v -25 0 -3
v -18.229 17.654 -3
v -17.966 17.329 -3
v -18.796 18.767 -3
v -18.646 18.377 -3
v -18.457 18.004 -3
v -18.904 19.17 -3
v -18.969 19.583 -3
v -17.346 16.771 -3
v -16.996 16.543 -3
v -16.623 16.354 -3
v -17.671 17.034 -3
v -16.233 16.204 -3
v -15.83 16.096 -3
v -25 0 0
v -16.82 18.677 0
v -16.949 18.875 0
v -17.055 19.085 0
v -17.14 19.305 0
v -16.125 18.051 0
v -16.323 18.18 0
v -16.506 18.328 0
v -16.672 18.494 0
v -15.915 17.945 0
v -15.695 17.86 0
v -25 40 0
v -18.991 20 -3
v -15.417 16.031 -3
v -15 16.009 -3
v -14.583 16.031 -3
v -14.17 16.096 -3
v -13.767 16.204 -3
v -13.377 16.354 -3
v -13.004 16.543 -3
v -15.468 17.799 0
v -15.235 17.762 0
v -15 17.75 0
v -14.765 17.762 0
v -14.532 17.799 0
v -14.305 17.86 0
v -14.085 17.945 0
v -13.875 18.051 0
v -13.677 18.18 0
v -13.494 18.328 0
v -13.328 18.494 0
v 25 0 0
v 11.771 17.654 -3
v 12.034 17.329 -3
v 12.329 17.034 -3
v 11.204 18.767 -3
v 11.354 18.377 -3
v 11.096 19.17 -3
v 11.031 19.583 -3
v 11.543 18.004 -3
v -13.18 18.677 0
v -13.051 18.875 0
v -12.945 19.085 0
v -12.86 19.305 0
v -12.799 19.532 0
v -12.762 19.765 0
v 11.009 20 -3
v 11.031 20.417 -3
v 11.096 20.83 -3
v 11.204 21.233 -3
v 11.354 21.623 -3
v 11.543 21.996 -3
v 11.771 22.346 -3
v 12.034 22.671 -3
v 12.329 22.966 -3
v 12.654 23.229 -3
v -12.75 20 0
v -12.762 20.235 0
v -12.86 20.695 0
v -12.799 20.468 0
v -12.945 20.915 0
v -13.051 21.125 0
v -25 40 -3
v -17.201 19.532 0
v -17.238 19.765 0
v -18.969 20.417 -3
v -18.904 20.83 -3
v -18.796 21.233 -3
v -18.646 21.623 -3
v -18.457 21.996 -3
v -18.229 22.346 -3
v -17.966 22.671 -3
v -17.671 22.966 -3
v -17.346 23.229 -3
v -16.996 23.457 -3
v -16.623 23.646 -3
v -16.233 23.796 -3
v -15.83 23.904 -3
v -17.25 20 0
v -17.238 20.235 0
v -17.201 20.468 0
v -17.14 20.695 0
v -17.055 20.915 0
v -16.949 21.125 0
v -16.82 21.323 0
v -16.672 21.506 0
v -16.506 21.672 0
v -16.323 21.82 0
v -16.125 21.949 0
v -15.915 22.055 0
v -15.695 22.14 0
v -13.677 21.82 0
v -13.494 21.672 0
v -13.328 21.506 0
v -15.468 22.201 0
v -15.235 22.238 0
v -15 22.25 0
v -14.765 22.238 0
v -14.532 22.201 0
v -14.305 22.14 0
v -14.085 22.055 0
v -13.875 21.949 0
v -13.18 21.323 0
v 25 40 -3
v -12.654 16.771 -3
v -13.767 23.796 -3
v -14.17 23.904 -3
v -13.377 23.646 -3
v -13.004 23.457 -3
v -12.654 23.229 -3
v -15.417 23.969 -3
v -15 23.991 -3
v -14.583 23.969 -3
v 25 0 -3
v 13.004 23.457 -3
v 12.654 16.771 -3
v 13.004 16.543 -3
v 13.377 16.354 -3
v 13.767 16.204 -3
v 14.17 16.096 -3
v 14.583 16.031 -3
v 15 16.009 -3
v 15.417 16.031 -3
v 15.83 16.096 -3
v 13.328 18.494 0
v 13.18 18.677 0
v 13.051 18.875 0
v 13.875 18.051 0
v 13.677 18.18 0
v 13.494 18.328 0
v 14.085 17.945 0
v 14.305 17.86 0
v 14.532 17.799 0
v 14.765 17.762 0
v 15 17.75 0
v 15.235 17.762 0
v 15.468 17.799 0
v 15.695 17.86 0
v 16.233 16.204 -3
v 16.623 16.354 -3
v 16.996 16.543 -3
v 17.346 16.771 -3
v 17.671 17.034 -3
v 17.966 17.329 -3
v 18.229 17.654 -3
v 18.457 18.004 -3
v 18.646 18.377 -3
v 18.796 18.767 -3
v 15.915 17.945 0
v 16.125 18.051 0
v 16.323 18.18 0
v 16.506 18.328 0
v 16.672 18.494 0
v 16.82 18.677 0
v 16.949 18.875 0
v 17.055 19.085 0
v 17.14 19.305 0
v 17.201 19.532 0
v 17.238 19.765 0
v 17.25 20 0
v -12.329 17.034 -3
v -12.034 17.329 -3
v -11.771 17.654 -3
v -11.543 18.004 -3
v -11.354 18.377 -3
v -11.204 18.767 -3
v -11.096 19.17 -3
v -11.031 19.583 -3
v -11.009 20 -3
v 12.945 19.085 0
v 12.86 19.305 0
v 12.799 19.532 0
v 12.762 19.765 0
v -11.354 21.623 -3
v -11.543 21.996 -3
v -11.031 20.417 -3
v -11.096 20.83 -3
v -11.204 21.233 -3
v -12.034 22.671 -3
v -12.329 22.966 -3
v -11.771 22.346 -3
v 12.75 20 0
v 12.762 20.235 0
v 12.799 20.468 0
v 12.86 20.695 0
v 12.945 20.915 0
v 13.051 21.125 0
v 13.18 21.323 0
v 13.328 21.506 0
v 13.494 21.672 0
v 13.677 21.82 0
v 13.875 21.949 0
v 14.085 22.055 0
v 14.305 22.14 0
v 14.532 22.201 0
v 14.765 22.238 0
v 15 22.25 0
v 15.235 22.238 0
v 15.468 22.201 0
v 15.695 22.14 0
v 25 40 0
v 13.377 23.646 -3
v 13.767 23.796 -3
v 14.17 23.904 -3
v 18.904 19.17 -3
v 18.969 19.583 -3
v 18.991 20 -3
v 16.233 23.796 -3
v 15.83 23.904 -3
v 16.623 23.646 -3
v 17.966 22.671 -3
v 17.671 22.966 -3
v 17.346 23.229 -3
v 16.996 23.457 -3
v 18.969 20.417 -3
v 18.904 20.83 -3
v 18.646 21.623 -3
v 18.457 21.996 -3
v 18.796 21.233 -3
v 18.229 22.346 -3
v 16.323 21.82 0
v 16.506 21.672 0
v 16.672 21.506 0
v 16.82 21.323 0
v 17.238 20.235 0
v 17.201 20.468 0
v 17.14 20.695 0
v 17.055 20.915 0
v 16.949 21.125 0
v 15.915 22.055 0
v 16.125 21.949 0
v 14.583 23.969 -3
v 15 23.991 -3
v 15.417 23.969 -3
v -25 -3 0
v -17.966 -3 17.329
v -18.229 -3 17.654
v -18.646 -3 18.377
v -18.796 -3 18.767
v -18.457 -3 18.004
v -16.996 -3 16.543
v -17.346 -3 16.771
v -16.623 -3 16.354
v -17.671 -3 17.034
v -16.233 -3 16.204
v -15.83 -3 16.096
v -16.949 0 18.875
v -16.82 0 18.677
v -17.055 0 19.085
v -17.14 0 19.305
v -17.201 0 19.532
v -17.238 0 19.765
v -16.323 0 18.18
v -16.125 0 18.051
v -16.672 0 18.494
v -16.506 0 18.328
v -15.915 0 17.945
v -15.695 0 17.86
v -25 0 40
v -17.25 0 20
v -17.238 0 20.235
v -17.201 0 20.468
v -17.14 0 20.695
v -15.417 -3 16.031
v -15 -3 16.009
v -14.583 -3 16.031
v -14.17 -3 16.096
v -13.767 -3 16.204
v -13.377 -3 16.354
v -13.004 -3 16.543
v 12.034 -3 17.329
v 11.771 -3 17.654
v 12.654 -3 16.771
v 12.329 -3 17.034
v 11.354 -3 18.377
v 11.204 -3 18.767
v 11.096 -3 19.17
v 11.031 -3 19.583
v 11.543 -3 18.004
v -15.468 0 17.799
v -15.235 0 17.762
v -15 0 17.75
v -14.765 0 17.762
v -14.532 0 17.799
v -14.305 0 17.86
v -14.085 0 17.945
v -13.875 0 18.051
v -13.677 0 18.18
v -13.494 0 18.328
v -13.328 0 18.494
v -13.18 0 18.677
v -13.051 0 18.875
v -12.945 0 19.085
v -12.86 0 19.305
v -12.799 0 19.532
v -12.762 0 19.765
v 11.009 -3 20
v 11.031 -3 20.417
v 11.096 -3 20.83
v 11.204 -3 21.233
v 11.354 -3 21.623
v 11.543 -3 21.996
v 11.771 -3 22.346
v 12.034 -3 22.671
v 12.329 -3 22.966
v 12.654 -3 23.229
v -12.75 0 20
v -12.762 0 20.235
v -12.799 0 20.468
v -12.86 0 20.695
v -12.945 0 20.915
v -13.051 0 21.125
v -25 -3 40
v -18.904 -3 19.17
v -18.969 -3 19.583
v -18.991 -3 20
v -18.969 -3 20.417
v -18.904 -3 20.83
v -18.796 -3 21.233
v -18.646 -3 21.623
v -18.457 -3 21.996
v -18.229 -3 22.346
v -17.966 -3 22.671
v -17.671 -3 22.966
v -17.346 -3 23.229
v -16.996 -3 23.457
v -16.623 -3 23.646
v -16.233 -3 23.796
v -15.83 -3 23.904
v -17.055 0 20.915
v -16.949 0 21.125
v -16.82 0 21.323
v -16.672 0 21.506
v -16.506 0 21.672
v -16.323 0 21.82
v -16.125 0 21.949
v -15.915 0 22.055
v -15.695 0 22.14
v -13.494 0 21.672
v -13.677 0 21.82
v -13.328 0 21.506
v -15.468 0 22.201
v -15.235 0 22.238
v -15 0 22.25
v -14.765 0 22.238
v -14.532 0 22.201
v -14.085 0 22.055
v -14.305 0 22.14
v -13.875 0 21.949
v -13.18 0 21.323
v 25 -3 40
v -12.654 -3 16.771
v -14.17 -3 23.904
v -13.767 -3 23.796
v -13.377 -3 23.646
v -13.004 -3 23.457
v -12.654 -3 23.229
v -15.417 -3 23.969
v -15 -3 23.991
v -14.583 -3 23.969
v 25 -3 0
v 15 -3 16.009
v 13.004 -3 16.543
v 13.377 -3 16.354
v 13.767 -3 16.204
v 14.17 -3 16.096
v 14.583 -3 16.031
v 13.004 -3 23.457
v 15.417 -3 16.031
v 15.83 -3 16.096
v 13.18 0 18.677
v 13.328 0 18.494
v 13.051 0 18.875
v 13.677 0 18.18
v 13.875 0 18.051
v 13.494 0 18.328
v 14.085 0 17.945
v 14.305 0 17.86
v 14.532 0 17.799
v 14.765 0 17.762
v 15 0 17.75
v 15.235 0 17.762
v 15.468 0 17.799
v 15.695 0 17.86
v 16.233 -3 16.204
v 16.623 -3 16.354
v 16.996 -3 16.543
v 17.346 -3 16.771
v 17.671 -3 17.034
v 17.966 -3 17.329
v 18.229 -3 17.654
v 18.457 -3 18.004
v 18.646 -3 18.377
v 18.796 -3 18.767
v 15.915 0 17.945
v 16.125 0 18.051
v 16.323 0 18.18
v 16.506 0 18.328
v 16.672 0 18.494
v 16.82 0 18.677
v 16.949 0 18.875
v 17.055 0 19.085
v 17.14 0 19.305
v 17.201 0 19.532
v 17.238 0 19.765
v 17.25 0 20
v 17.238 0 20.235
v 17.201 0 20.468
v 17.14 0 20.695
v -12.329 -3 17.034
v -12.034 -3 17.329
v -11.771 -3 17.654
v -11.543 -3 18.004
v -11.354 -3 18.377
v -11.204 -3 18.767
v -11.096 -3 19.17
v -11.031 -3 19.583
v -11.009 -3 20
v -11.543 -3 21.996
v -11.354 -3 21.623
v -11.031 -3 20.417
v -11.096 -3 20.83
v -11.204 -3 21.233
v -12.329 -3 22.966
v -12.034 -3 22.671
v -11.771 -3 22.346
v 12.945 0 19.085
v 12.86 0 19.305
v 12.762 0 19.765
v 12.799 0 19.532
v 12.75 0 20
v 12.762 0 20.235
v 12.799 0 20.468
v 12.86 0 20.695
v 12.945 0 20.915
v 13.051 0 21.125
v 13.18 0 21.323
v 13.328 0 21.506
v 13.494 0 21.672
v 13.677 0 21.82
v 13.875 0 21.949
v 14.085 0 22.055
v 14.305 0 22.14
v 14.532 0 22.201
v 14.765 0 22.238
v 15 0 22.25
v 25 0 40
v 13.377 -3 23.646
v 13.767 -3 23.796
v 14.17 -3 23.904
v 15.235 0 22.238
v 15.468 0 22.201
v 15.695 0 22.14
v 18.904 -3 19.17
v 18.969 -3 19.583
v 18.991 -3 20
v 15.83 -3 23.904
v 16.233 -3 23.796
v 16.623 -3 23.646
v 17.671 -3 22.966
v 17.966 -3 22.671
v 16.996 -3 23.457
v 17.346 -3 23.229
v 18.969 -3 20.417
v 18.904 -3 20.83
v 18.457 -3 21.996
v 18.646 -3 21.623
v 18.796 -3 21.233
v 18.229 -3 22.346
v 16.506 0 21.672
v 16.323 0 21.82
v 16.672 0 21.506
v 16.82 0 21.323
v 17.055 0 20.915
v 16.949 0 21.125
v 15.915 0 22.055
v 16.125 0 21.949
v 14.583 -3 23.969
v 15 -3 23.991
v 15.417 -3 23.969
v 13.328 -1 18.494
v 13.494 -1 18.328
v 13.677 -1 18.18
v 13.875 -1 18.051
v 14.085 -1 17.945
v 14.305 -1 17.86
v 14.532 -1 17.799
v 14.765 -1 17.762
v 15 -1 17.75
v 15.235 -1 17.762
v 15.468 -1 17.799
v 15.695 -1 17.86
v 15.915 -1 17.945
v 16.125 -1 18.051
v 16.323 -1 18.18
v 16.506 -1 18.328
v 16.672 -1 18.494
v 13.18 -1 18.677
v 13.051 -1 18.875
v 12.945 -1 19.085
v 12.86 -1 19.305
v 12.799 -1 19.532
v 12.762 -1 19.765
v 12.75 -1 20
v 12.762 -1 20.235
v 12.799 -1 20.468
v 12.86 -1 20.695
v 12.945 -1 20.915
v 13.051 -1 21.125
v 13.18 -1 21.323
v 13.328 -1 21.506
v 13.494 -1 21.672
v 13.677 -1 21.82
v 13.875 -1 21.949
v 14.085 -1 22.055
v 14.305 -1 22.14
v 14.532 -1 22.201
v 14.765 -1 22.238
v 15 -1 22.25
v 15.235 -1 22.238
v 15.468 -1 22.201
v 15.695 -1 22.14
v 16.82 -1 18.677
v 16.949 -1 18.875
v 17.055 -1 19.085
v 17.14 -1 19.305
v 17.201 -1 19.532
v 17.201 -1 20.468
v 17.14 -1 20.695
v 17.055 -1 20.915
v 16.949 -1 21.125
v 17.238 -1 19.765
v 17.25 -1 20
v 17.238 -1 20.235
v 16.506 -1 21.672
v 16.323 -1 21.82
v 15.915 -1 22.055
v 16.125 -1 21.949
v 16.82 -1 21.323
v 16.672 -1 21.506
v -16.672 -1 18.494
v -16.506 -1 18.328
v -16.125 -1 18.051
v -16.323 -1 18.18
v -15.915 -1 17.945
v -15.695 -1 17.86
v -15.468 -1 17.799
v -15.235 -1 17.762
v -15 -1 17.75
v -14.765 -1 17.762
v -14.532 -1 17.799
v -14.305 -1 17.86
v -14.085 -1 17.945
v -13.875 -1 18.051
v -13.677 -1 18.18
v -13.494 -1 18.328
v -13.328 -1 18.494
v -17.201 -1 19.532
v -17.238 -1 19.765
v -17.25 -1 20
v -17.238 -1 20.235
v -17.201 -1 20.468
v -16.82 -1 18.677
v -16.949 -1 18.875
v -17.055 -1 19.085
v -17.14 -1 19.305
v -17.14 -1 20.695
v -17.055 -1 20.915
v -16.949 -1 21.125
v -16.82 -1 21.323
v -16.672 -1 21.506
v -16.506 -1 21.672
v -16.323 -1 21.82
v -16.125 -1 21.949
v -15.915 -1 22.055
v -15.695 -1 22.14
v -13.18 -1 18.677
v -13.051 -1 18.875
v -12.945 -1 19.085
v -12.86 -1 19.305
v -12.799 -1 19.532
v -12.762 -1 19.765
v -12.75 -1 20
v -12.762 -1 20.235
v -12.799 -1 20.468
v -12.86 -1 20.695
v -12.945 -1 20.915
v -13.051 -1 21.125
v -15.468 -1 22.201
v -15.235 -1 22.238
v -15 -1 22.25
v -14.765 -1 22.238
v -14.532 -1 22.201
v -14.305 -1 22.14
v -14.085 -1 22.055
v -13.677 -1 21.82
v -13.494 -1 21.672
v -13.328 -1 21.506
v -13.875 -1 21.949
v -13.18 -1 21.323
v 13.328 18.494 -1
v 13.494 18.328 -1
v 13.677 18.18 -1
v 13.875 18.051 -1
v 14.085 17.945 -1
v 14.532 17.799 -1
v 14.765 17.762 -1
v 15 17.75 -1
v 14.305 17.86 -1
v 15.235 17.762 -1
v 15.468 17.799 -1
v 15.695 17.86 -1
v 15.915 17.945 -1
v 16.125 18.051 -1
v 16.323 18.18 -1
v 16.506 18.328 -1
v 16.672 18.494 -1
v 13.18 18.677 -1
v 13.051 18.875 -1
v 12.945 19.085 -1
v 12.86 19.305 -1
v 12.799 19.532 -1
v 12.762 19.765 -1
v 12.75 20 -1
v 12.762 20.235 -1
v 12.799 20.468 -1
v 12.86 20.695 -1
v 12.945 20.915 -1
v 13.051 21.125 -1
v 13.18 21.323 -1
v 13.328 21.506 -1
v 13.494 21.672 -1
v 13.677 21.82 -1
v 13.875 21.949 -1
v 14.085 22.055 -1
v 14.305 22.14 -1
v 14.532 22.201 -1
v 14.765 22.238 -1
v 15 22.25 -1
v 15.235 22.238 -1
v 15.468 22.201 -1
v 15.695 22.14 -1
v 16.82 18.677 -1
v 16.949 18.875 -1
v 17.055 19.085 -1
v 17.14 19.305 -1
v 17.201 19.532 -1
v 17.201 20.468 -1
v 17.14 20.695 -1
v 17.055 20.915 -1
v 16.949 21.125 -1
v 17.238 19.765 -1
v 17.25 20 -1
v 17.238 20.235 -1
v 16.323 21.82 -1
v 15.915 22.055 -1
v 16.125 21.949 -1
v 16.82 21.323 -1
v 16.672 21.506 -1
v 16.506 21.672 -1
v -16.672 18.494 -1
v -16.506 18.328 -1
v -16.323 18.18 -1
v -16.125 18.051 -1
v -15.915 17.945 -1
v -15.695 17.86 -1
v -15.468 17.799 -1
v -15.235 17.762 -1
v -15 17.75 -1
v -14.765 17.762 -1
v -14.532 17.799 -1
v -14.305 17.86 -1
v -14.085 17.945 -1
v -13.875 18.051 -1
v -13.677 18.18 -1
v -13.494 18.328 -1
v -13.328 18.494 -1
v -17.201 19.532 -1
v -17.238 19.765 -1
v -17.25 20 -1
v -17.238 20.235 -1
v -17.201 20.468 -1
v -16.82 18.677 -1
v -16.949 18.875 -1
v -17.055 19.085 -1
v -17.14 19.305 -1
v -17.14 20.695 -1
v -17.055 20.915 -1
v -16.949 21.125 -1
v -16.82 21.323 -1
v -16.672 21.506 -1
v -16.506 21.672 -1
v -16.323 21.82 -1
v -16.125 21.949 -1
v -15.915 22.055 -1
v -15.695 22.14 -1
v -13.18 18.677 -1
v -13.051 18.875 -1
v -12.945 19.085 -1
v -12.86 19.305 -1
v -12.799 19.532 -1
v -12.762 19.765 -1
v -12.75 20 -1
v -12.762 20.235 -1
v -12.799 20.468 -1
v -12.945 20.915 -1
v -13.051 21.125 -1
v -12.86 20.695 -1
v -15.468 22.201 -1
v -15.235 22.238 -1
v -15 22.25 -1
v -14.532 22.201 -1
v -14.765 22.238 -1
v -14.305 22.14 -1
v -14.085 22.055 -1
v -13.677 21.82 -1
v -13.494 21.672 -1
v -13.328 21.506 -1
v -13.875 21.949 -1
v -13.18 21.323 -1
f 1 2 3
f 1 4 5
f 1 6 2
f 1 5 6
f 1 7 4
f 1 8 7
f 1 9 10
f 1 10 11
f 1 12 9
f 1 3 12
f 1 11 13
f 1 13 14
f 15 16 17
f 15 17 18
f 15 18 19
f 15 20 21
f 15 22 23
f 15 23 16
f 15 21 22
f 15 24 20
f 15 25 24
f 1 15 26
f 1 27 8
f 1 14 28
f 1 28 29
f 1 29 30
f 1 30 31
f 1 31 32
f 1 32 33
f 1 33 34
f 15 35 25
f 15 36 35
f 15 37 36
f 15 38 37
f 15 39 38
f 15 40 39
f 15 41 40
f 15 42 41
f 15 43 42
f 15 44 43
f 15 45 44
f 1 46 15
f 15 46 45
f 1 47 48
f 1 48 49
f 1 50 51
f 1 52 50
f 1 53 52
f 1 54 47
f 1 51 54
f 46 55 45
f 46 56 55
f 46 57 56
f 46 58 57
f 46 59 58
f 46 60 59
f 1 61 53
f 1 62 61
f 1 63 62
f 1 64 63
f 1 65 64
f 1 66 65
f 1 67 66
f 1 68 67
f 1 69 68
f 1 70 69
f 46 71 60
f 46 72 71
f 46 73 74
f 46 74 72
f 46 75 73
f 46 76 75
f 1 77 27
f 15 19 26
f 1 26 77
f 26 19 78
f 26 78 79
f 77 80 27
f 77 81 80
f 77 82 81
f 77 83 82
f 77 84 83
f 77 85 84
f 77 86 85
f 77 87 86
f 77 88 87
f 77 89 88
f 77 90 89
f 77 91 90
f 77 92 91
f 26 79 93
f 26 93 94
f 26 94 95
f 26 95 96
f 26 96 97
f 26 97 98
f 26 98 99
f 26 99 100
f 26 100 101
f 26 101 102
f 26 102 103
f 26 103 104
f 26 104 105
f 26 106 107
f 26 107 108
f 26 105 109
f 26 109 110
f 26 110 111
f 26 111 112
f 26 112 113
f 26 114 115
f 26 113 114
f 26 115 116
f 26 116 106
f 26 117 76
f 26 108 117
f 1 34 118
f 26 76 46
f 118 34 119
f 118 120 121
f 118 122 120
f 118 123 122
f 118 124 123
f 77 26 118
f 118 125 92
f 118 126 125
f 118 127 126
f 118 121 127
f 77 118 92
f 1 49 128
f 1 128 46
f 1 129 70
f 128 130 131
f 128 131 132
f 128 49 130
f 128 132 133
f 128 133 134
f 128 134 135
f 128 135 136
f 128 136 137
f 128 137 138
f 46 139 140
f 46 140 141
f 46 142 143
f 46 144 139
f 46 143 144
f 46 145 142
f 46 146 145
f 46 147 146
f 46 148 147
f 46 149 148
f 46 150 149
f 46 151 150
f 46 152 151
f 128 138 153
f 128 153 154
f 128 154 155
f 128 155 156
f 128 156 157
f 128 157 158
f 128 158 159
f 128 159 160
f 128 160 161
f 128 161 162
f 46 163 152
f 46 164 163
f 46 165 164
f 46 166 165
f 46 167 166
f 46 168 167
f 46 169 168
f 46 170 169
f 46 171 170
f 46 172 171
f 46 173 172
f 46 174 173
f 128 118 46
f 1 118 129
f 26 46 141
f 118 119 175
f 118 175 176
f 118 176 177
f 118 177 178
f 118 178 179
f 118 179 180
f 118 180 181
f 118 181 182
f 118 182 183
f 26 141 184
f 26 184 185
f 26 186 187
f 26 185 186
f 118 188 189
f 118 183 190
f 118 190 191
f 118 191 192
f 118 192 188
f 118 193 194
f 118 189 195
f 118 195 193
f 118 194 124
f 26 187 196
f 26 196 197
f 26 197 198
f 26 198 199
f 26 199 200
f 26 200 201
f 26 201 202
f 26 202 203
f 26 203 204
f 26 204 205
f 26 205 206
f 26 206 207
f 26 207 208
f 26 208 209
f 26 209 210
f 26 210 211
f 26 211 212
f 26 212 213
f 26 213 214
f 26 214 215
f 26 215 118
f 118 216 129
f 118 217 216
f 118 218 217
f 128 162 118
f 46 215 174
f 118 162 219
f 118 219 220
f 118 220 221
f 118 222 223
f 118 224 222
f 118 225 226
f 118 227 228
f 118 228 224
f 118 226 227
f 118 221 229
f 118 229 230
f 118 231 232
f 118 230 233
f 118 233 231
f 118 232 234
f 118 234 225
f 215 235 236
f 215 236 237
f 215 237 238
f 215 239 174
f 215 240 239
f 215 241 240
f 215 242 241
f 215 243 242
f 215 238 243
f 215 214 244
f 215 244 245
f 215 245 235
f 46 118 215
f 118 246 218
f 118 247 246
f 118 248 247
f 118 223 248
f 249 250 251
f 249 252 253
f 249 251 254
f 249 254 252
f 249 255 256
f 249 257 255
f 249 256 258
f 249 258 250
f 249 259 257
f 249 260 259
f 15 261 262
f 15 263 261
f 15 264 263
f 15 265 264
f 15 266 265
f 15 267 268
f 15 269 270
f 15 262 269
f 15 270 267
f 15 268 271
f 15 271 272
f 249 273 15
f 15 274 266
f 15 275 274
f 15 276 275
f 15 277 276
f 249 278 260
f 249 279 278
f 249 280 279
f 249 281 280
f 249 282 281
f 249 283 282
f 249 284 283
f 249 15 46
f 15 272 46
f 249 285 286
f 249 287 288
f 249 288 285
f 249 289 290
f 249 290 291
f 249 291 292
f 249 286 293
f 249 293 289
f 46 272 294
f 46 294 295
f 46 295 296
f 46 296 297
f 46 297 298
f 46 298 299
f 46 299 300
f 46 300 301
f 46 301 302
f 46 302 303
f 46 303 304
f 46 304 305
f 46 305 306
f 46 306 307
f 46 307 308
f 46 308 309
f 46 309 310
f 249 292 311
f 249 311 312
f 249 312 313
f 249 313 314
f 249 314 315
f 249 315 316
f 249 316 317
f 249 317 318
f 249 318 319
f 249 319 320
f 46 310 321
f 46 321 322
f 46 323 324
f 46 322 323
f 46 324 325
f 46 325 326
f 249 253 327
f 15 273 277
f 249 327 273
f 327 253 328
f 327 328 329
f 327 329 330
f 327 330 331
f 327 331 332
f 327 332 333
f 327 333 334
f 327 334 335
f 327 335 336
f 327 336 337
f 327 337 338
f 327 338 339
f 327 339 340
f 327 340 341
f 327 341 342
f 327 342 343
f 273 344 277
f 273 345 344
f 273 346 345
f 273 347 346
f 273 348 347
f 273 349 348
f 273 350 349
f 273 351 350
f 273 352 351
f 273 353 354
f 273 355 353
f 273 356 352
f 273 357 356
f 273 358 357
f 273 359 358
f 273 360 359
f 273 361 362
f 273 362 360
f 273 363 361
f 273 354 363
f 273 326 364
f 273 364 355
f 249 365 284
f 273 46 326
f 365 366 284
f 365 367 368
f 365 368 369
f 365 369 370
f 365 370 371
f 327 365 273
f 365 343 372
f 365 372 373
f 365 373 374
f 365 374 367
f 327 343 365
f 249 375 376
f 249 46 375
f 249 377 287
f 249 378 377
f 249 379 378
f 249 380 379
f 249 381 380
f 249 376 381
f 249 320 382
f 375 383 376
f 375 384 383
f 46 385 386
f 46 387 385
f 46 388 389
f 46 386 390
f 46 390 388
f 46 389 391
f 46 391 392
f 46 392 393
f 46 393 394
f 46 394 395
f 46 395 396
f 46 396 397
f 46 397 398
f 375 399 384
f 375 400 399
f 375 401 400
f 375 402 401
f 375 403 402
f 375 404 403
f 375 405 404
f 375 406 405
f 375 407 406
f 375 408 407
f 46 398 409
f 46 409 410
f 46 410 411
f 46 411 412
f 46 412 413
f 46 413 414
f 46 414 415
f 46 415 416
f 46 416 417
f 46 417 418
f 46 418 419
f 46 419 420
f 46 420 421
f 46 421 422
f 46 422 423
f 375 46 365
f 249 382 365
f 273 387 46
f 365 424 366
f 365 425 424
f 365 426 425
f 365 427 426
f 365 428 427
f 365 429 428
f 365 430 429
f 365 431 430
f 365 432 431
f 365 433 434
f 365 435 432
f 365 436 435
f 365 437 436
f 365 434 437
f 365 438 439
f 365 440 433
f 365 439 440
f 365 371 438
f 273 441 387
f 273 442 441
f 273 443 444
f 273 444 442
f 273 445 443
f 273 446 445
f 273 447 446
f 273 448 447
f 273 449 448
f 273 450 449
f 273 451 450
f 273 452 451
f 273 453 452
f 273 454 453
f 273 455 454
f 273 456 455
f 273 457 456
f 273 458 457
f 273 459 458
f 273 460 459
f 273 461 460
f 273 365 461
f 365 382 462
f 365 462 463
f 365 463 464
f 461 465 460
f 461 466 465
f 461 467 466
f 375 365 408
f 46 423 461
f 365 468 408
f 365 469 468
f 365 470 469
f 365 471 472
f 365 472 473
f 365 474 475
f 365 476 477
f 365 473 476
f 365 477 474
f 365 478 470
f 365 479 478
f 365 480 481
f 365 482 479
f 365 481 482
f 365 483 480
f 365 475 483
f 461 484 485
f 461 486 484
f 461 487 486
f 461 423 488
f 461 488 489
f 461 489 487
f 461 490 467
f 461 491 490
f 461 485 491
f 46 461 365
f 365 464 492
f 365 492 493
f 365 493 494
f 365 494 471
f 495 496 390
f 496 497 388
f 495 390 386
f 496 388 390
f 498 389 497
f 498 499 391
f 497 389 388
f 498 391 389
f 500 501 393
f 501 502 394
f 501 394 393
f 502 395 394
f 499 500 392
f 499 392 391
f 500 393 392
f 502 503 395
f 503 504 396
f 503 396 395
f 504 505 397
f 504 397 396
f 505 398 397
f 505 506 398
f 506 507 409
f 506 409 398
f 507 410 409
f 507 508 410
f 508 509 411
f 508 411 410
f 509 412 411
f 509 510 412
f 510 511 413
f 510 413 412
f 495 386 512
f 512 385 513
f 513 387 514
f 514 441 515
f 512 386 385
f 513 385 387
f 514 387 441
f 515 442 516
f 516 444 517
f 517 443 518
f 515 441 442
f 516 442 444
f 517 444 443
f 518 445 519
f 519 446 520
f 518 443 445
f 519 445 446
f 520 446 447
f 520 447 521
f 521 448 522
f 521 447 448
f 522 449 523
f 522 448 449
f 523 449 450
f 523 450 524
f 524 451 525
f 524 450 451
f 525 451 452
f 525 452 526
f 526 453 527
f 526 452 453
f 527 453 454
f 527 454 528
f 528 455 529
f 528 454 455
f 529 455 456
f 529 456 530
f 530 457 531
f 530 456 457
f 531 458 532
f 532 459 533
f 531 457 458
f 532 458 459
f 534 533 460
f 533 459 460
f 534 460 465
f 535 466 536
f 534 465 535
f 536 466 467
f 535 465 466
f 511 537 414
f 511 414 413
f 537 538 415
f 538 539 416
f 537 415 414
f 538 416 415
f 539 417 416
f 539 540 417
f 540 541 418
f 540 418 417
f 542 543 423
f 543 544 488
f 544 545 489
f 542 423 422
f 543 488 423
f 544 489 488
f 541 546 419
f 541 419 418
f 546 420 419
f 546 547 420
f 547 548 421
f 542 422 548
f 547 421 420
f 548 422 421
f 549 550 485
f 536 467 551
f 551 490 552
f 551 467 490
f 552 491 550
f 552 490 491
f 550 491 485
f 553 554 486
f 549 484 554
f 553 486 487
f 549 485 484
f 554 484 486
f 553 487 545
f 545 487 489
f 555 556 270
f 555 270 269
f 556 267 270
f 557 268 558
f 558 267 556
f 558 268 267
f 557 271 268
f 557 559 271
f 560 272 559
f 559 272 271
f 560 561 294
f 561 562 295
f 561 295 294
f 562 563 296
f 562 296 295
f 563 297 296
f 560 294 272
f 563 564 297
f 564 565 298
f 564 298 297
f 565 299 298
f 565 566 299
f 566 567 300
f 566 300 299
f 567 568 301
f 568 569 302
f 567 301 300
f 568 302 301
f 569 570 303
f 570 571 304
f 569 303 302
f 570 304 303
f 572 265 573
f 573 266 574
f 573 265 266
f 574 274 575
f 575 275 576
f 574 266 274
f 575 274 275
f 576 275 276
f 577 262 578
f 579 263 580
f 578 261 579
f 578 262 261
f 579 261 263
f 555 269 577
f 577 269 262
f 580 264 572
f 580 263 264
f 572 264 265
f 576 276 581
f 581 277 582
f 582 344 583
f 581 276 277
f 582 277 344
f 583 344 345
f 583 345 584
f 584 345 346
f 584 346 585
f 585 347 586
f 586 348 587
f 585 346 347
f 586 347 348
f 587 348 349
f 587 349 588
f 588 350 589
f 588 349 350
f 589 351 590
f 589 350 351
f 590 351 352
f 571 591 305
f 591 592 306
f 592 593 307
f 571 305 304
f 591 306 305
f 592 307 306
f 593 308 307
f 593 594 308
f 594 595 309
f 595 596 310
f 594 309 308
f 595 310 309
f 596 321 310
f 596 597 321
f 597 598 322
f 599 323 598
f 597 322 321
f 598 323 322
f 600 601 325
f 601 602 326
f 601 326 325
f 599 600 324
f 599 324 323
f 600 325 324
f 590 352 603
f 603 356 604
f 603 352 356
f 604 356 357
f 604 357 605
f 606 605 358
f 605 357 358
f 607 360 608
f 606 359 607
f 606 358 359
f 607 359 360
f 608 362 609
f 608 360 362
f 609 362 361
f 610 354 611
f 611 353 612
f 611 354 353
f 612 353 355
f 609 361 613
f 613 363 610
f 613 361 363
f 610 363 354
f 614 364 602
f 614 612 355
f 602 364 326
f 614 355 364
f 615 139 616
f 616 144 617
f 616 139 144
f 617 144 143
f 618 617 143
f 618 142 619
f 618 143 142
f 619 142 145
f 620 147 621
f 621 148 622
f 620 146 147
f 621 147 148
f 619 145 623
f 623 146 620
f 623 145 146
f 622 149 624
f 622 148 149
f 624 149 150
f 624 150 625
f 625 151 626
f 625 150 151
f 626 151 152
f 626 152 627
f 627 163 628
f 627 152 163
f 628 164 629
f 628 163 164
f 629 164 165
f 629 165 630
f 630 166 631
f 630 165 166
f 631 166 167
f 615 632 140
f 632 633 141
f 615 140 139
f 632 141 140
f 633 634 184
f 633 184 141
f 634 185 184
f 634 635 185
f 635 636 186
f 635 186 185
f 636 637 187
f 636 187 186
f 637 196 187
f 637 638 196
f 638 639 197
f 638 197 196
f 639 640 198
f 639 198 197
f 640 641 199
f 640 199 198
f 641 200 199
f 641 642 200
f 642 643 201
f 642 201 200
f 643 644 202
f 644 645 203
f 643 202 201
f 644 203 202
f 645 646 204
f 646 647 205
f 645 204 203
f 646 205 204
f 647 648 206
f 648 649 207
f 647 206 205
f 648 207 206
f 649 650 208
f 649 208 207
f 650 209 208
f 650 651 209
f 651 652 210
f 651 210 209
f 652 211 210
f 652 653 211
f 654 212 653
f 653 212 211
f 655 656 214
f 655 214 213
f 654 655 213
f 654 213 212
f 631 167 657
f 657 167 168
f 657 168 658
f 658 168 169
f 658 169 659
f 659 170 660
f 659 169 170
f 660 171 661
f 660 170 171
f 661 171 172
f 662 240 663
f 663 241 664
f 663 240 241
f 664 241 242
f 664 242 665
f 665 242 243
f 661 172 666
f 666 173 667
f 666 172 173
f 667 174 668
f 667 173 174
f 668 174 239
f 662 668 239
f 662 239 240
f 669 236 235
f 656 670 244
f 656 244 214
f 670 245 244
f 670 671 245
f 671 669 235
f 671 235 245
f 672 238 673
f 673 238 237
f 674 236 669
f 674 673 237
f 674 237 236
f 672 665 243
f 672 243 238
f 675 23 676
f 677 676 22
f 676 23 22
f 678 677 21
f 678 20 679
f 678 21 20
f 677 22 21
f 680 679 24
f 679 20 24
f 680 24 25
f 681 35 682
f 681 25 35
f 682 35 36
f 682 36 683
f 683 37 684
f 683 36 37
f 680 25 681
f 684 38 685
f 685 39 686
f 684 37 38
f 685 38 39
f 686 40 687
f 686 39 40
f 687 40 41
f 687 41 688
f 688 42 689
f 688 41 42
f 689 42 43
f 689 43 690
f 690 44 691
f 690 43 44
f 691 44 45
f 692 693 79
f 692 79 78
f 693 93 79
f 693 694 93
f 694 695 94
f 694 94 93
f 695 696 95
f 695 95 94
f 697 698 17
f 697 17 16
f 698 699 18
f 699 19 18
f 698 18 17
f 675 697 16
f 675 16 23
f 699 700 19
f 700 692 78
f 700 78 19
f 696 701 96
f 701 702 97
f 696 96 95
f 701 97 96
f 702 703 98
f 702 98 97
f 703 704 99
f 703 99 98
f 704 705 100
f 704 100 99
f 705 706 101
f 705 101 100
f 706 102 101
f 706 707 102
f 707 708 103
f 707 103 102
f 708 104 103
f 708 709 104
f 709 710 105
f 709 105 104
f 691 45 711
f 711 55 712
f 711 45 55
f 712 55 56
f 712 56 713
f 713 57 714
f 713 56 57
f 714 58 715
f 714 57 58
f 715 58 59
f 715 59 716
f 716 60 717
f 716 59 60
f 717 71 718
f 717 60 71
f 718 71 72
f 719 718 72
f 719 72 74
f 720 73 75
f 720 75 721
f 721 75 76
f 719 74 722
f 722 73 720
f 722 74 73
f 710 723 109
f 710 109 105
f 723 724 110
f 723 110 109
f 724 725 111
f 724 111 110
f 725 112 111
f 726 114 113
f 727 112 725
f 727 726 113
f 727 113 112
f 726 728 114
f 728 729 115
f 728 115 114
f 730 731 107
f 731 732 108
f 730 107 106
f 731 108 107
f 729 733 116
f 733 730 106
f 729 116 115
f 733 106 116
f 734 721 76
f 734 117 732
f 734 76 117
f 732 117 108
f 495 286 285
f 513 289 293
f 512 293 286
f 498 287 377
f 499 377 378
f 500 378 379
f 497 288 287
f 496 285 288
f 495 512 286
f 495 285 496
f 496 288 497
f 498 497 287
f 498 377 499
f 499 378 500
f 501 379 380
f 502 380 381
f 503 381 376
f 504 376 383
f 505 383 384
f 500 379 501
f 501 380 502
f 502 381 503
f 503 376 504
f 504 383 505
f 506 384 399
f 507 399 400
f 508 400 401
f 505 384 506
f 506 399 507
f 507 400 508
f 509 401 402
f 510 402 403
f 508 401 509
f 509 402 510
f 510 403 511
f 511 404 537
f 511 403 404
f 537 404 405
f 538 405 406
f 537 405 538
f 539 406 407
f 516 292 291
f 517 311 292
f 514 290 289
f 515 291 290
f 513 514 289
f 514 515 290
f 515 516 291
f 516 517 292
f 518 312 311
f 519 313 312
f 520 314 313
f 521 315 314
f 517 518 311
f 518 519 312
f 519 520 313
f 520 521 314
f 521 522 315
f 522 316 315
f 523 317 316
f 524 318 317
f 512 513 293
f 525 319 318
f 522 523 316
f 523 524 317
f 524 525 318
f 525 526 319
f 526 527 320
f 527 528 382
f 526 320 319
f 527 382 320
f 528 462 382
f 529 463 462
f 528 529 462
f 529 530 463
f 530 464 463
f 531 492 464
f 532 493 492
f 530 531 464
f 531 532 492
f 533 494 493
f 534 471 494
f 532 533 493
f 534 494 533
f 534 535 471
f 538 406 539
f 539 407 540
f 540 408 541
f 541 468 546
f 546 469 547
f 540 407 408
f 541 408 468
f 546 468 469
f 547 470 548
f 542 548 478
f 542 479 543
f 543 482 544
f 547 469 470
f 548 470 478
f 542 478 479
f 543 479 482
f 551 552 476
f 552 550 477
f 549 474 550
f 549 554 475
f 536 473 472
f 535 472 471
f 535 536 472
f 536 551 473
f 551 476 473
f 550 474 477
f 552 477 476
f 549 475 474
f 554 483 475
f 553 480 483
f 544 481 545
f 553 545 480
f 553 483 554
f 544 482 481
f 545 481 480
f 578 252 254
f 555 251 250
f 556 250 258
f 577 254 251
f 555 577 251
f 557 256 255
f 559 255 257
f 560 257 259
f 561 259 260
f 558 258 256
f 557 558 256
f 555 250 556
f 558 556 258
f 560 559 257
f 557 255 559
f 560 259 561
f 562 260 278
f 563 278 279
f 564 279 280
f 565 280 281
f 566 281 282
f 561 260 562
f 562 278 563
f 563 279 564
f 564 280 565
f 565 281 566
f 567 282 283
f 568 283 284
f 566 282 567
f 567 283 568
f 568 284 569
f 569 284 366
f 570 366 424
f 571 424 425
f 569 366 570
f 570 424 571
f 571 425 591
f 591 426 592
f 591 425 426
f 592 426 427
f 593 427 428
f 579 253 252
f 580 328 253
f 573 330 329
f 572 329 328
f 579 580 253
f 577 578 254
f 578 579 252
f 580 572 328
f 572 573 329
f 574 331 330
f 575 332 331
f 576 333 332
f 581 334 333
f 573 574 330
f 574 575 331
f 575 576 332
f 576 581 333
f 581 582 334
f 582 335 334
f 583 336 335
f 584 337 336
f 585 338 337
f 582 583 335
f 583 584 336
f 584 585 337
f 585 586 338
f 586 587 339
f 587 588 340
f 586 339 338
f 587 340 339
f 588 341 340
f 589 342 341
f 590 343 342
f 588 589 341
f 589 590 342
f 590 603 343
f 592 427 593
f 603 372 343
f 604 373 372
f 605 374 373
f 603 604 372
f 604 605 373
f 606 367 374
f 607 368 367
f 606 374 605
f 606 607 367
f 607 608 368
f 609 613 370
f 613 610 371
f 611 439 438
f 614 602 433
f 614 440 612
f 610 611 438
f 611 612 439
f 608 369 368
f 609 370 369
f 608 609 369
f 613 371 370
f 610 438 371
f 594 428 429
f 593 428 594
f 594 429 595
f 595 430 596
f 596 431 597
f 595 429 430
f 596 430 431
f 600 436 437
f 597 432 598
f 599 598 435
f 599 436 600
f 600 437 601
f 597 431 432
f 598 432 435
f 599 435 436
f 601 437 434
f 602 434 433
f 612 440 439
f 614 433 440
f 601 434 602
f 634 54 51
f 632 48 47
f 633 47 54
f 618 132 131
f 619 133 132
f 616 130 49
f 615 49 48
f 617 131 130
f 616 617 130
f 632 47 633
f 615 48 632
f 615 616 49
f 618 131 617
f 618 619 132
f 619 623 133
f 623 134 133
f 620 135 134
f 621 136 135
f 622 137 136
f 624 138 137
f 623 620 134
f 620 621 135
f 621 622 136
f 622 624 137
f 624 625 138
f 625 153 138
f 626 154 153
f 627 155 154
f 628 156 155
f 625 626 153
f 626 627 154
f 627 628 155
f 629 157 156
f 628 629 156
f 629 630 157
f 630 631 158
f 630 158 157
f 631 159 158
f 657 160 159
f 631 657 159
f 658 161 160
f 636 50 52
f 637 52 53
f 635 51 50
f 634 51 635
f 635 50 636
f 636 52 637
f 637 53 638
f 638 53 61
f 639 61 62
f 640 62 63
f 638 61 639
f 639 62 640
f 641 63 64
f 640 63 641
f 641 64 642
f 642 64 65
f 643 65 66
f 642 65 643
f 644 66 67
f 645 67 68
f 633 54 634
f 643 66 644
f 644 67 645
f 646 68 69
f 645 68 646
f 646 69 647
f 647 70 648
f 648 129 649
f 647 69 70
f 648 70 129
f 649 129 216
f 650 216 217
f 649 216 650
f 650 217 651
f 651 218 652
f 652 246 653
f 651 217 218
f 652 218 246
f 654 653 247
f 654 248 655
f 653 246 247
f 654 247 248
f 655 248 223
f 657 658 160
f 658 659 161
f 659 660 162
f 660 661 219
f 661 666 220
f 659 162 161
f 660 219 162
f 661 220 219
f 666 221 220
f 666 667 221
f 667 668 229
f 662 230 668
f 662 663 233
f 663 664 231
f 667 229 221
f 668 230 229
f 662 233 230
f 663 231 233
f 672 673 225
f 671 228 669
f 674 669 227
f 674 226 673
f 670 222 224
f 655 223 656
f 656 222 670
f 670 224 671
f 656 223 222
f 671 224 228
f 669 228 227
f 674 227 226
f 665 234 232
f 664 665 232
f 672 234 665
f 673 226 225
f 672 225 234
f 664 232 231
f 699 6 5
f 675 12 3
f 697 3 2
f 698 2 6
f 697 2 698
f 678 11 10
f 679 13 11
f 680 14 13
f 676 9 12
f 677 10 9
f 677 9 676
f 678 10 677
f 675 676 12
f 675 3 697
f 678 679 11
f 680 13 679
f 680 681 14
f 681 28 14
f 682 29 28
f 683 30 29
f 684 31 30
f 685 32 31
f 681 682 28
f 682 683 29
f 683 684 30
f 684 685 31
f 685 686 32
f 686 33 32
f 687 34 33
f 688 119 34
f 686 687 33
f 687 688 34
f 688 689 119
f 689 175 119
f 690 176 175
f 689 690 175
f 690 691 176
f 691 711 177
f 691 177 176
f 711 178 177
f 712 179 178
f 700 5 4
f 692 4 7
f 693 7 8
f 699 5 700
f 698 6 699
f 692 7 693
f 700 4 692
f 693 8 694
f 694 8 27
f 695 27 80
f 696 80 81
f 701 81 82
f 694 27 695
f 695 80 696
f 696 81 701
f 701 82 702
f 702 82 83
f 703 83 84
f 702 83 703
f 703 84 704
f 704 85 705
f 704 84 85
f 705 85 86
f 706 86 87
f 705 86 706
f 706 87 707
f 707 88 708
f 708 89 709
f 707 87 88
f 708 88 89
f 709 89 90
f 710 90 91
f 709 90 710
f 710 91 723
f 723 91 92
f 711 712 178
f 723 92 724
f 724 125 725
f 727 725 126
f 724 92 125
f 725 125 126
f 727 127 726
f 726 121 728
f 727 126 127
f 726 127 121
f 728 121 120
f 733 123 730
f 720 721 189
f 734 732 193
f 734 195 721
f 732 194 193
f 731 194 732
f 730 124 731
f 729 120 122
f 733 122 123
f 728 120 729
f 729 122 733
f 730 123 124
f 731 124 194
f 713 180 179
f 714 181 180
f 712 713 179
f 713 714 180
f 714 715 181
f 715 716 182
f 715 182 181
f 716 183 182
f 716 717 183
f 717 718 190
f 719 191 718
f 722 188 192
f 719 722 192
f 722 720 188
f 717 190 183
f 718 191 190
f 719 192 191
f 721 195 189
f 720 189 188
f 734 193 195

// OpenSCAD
// L-bracket parameters
width = 50;
depth = 40;
height = 40;
thickness = 3;

// Hole parameters
hole_d = 4.5;
cs_d = 8.0;
cs_depth = 2.0;
edge_margin = 10;

$fn = 60;

module countersunk_hole() {
    translate([0, 0, -1])
        cylinder(h = thickness + 2, d = hole_d);
    translate([0, 0, -0.01])
        cylinder(h = cs_depth + 0.01, d1 = cs_d, d2 = hole_d);
}

difference() {
    // Main L-bracket body
    union() {
        // Horizontal flange (+Y direction, thickness extending -Z)
        translate([-width/2, 0, -thickness])
            cube([width, depth, thickness]);
        
        // Vertical flange (+Z direction, thickness extending -Y)
        translate([-width/2, -thickness, 0])
            cube([width, thickness, height]);
    }

    // Holes in horizontal flange
    translate([-width/2 + edge_margin, depth/2, -thickness])
        countersunk_hole();
    translate([width/2 - edge_margin, depth/2, -thickness])
        countersunk_hole();

    // Holes in vertical flange
    translate([-width/2 + edge_margin, -thickness, height/2])
        rotate([-90, 0, 0])
            countersunk_hole();
    translate([width/2 - edge_margin, -thickness, height/2])
        rotate([-90, 0, 0])
            countersunk_hole();
}
